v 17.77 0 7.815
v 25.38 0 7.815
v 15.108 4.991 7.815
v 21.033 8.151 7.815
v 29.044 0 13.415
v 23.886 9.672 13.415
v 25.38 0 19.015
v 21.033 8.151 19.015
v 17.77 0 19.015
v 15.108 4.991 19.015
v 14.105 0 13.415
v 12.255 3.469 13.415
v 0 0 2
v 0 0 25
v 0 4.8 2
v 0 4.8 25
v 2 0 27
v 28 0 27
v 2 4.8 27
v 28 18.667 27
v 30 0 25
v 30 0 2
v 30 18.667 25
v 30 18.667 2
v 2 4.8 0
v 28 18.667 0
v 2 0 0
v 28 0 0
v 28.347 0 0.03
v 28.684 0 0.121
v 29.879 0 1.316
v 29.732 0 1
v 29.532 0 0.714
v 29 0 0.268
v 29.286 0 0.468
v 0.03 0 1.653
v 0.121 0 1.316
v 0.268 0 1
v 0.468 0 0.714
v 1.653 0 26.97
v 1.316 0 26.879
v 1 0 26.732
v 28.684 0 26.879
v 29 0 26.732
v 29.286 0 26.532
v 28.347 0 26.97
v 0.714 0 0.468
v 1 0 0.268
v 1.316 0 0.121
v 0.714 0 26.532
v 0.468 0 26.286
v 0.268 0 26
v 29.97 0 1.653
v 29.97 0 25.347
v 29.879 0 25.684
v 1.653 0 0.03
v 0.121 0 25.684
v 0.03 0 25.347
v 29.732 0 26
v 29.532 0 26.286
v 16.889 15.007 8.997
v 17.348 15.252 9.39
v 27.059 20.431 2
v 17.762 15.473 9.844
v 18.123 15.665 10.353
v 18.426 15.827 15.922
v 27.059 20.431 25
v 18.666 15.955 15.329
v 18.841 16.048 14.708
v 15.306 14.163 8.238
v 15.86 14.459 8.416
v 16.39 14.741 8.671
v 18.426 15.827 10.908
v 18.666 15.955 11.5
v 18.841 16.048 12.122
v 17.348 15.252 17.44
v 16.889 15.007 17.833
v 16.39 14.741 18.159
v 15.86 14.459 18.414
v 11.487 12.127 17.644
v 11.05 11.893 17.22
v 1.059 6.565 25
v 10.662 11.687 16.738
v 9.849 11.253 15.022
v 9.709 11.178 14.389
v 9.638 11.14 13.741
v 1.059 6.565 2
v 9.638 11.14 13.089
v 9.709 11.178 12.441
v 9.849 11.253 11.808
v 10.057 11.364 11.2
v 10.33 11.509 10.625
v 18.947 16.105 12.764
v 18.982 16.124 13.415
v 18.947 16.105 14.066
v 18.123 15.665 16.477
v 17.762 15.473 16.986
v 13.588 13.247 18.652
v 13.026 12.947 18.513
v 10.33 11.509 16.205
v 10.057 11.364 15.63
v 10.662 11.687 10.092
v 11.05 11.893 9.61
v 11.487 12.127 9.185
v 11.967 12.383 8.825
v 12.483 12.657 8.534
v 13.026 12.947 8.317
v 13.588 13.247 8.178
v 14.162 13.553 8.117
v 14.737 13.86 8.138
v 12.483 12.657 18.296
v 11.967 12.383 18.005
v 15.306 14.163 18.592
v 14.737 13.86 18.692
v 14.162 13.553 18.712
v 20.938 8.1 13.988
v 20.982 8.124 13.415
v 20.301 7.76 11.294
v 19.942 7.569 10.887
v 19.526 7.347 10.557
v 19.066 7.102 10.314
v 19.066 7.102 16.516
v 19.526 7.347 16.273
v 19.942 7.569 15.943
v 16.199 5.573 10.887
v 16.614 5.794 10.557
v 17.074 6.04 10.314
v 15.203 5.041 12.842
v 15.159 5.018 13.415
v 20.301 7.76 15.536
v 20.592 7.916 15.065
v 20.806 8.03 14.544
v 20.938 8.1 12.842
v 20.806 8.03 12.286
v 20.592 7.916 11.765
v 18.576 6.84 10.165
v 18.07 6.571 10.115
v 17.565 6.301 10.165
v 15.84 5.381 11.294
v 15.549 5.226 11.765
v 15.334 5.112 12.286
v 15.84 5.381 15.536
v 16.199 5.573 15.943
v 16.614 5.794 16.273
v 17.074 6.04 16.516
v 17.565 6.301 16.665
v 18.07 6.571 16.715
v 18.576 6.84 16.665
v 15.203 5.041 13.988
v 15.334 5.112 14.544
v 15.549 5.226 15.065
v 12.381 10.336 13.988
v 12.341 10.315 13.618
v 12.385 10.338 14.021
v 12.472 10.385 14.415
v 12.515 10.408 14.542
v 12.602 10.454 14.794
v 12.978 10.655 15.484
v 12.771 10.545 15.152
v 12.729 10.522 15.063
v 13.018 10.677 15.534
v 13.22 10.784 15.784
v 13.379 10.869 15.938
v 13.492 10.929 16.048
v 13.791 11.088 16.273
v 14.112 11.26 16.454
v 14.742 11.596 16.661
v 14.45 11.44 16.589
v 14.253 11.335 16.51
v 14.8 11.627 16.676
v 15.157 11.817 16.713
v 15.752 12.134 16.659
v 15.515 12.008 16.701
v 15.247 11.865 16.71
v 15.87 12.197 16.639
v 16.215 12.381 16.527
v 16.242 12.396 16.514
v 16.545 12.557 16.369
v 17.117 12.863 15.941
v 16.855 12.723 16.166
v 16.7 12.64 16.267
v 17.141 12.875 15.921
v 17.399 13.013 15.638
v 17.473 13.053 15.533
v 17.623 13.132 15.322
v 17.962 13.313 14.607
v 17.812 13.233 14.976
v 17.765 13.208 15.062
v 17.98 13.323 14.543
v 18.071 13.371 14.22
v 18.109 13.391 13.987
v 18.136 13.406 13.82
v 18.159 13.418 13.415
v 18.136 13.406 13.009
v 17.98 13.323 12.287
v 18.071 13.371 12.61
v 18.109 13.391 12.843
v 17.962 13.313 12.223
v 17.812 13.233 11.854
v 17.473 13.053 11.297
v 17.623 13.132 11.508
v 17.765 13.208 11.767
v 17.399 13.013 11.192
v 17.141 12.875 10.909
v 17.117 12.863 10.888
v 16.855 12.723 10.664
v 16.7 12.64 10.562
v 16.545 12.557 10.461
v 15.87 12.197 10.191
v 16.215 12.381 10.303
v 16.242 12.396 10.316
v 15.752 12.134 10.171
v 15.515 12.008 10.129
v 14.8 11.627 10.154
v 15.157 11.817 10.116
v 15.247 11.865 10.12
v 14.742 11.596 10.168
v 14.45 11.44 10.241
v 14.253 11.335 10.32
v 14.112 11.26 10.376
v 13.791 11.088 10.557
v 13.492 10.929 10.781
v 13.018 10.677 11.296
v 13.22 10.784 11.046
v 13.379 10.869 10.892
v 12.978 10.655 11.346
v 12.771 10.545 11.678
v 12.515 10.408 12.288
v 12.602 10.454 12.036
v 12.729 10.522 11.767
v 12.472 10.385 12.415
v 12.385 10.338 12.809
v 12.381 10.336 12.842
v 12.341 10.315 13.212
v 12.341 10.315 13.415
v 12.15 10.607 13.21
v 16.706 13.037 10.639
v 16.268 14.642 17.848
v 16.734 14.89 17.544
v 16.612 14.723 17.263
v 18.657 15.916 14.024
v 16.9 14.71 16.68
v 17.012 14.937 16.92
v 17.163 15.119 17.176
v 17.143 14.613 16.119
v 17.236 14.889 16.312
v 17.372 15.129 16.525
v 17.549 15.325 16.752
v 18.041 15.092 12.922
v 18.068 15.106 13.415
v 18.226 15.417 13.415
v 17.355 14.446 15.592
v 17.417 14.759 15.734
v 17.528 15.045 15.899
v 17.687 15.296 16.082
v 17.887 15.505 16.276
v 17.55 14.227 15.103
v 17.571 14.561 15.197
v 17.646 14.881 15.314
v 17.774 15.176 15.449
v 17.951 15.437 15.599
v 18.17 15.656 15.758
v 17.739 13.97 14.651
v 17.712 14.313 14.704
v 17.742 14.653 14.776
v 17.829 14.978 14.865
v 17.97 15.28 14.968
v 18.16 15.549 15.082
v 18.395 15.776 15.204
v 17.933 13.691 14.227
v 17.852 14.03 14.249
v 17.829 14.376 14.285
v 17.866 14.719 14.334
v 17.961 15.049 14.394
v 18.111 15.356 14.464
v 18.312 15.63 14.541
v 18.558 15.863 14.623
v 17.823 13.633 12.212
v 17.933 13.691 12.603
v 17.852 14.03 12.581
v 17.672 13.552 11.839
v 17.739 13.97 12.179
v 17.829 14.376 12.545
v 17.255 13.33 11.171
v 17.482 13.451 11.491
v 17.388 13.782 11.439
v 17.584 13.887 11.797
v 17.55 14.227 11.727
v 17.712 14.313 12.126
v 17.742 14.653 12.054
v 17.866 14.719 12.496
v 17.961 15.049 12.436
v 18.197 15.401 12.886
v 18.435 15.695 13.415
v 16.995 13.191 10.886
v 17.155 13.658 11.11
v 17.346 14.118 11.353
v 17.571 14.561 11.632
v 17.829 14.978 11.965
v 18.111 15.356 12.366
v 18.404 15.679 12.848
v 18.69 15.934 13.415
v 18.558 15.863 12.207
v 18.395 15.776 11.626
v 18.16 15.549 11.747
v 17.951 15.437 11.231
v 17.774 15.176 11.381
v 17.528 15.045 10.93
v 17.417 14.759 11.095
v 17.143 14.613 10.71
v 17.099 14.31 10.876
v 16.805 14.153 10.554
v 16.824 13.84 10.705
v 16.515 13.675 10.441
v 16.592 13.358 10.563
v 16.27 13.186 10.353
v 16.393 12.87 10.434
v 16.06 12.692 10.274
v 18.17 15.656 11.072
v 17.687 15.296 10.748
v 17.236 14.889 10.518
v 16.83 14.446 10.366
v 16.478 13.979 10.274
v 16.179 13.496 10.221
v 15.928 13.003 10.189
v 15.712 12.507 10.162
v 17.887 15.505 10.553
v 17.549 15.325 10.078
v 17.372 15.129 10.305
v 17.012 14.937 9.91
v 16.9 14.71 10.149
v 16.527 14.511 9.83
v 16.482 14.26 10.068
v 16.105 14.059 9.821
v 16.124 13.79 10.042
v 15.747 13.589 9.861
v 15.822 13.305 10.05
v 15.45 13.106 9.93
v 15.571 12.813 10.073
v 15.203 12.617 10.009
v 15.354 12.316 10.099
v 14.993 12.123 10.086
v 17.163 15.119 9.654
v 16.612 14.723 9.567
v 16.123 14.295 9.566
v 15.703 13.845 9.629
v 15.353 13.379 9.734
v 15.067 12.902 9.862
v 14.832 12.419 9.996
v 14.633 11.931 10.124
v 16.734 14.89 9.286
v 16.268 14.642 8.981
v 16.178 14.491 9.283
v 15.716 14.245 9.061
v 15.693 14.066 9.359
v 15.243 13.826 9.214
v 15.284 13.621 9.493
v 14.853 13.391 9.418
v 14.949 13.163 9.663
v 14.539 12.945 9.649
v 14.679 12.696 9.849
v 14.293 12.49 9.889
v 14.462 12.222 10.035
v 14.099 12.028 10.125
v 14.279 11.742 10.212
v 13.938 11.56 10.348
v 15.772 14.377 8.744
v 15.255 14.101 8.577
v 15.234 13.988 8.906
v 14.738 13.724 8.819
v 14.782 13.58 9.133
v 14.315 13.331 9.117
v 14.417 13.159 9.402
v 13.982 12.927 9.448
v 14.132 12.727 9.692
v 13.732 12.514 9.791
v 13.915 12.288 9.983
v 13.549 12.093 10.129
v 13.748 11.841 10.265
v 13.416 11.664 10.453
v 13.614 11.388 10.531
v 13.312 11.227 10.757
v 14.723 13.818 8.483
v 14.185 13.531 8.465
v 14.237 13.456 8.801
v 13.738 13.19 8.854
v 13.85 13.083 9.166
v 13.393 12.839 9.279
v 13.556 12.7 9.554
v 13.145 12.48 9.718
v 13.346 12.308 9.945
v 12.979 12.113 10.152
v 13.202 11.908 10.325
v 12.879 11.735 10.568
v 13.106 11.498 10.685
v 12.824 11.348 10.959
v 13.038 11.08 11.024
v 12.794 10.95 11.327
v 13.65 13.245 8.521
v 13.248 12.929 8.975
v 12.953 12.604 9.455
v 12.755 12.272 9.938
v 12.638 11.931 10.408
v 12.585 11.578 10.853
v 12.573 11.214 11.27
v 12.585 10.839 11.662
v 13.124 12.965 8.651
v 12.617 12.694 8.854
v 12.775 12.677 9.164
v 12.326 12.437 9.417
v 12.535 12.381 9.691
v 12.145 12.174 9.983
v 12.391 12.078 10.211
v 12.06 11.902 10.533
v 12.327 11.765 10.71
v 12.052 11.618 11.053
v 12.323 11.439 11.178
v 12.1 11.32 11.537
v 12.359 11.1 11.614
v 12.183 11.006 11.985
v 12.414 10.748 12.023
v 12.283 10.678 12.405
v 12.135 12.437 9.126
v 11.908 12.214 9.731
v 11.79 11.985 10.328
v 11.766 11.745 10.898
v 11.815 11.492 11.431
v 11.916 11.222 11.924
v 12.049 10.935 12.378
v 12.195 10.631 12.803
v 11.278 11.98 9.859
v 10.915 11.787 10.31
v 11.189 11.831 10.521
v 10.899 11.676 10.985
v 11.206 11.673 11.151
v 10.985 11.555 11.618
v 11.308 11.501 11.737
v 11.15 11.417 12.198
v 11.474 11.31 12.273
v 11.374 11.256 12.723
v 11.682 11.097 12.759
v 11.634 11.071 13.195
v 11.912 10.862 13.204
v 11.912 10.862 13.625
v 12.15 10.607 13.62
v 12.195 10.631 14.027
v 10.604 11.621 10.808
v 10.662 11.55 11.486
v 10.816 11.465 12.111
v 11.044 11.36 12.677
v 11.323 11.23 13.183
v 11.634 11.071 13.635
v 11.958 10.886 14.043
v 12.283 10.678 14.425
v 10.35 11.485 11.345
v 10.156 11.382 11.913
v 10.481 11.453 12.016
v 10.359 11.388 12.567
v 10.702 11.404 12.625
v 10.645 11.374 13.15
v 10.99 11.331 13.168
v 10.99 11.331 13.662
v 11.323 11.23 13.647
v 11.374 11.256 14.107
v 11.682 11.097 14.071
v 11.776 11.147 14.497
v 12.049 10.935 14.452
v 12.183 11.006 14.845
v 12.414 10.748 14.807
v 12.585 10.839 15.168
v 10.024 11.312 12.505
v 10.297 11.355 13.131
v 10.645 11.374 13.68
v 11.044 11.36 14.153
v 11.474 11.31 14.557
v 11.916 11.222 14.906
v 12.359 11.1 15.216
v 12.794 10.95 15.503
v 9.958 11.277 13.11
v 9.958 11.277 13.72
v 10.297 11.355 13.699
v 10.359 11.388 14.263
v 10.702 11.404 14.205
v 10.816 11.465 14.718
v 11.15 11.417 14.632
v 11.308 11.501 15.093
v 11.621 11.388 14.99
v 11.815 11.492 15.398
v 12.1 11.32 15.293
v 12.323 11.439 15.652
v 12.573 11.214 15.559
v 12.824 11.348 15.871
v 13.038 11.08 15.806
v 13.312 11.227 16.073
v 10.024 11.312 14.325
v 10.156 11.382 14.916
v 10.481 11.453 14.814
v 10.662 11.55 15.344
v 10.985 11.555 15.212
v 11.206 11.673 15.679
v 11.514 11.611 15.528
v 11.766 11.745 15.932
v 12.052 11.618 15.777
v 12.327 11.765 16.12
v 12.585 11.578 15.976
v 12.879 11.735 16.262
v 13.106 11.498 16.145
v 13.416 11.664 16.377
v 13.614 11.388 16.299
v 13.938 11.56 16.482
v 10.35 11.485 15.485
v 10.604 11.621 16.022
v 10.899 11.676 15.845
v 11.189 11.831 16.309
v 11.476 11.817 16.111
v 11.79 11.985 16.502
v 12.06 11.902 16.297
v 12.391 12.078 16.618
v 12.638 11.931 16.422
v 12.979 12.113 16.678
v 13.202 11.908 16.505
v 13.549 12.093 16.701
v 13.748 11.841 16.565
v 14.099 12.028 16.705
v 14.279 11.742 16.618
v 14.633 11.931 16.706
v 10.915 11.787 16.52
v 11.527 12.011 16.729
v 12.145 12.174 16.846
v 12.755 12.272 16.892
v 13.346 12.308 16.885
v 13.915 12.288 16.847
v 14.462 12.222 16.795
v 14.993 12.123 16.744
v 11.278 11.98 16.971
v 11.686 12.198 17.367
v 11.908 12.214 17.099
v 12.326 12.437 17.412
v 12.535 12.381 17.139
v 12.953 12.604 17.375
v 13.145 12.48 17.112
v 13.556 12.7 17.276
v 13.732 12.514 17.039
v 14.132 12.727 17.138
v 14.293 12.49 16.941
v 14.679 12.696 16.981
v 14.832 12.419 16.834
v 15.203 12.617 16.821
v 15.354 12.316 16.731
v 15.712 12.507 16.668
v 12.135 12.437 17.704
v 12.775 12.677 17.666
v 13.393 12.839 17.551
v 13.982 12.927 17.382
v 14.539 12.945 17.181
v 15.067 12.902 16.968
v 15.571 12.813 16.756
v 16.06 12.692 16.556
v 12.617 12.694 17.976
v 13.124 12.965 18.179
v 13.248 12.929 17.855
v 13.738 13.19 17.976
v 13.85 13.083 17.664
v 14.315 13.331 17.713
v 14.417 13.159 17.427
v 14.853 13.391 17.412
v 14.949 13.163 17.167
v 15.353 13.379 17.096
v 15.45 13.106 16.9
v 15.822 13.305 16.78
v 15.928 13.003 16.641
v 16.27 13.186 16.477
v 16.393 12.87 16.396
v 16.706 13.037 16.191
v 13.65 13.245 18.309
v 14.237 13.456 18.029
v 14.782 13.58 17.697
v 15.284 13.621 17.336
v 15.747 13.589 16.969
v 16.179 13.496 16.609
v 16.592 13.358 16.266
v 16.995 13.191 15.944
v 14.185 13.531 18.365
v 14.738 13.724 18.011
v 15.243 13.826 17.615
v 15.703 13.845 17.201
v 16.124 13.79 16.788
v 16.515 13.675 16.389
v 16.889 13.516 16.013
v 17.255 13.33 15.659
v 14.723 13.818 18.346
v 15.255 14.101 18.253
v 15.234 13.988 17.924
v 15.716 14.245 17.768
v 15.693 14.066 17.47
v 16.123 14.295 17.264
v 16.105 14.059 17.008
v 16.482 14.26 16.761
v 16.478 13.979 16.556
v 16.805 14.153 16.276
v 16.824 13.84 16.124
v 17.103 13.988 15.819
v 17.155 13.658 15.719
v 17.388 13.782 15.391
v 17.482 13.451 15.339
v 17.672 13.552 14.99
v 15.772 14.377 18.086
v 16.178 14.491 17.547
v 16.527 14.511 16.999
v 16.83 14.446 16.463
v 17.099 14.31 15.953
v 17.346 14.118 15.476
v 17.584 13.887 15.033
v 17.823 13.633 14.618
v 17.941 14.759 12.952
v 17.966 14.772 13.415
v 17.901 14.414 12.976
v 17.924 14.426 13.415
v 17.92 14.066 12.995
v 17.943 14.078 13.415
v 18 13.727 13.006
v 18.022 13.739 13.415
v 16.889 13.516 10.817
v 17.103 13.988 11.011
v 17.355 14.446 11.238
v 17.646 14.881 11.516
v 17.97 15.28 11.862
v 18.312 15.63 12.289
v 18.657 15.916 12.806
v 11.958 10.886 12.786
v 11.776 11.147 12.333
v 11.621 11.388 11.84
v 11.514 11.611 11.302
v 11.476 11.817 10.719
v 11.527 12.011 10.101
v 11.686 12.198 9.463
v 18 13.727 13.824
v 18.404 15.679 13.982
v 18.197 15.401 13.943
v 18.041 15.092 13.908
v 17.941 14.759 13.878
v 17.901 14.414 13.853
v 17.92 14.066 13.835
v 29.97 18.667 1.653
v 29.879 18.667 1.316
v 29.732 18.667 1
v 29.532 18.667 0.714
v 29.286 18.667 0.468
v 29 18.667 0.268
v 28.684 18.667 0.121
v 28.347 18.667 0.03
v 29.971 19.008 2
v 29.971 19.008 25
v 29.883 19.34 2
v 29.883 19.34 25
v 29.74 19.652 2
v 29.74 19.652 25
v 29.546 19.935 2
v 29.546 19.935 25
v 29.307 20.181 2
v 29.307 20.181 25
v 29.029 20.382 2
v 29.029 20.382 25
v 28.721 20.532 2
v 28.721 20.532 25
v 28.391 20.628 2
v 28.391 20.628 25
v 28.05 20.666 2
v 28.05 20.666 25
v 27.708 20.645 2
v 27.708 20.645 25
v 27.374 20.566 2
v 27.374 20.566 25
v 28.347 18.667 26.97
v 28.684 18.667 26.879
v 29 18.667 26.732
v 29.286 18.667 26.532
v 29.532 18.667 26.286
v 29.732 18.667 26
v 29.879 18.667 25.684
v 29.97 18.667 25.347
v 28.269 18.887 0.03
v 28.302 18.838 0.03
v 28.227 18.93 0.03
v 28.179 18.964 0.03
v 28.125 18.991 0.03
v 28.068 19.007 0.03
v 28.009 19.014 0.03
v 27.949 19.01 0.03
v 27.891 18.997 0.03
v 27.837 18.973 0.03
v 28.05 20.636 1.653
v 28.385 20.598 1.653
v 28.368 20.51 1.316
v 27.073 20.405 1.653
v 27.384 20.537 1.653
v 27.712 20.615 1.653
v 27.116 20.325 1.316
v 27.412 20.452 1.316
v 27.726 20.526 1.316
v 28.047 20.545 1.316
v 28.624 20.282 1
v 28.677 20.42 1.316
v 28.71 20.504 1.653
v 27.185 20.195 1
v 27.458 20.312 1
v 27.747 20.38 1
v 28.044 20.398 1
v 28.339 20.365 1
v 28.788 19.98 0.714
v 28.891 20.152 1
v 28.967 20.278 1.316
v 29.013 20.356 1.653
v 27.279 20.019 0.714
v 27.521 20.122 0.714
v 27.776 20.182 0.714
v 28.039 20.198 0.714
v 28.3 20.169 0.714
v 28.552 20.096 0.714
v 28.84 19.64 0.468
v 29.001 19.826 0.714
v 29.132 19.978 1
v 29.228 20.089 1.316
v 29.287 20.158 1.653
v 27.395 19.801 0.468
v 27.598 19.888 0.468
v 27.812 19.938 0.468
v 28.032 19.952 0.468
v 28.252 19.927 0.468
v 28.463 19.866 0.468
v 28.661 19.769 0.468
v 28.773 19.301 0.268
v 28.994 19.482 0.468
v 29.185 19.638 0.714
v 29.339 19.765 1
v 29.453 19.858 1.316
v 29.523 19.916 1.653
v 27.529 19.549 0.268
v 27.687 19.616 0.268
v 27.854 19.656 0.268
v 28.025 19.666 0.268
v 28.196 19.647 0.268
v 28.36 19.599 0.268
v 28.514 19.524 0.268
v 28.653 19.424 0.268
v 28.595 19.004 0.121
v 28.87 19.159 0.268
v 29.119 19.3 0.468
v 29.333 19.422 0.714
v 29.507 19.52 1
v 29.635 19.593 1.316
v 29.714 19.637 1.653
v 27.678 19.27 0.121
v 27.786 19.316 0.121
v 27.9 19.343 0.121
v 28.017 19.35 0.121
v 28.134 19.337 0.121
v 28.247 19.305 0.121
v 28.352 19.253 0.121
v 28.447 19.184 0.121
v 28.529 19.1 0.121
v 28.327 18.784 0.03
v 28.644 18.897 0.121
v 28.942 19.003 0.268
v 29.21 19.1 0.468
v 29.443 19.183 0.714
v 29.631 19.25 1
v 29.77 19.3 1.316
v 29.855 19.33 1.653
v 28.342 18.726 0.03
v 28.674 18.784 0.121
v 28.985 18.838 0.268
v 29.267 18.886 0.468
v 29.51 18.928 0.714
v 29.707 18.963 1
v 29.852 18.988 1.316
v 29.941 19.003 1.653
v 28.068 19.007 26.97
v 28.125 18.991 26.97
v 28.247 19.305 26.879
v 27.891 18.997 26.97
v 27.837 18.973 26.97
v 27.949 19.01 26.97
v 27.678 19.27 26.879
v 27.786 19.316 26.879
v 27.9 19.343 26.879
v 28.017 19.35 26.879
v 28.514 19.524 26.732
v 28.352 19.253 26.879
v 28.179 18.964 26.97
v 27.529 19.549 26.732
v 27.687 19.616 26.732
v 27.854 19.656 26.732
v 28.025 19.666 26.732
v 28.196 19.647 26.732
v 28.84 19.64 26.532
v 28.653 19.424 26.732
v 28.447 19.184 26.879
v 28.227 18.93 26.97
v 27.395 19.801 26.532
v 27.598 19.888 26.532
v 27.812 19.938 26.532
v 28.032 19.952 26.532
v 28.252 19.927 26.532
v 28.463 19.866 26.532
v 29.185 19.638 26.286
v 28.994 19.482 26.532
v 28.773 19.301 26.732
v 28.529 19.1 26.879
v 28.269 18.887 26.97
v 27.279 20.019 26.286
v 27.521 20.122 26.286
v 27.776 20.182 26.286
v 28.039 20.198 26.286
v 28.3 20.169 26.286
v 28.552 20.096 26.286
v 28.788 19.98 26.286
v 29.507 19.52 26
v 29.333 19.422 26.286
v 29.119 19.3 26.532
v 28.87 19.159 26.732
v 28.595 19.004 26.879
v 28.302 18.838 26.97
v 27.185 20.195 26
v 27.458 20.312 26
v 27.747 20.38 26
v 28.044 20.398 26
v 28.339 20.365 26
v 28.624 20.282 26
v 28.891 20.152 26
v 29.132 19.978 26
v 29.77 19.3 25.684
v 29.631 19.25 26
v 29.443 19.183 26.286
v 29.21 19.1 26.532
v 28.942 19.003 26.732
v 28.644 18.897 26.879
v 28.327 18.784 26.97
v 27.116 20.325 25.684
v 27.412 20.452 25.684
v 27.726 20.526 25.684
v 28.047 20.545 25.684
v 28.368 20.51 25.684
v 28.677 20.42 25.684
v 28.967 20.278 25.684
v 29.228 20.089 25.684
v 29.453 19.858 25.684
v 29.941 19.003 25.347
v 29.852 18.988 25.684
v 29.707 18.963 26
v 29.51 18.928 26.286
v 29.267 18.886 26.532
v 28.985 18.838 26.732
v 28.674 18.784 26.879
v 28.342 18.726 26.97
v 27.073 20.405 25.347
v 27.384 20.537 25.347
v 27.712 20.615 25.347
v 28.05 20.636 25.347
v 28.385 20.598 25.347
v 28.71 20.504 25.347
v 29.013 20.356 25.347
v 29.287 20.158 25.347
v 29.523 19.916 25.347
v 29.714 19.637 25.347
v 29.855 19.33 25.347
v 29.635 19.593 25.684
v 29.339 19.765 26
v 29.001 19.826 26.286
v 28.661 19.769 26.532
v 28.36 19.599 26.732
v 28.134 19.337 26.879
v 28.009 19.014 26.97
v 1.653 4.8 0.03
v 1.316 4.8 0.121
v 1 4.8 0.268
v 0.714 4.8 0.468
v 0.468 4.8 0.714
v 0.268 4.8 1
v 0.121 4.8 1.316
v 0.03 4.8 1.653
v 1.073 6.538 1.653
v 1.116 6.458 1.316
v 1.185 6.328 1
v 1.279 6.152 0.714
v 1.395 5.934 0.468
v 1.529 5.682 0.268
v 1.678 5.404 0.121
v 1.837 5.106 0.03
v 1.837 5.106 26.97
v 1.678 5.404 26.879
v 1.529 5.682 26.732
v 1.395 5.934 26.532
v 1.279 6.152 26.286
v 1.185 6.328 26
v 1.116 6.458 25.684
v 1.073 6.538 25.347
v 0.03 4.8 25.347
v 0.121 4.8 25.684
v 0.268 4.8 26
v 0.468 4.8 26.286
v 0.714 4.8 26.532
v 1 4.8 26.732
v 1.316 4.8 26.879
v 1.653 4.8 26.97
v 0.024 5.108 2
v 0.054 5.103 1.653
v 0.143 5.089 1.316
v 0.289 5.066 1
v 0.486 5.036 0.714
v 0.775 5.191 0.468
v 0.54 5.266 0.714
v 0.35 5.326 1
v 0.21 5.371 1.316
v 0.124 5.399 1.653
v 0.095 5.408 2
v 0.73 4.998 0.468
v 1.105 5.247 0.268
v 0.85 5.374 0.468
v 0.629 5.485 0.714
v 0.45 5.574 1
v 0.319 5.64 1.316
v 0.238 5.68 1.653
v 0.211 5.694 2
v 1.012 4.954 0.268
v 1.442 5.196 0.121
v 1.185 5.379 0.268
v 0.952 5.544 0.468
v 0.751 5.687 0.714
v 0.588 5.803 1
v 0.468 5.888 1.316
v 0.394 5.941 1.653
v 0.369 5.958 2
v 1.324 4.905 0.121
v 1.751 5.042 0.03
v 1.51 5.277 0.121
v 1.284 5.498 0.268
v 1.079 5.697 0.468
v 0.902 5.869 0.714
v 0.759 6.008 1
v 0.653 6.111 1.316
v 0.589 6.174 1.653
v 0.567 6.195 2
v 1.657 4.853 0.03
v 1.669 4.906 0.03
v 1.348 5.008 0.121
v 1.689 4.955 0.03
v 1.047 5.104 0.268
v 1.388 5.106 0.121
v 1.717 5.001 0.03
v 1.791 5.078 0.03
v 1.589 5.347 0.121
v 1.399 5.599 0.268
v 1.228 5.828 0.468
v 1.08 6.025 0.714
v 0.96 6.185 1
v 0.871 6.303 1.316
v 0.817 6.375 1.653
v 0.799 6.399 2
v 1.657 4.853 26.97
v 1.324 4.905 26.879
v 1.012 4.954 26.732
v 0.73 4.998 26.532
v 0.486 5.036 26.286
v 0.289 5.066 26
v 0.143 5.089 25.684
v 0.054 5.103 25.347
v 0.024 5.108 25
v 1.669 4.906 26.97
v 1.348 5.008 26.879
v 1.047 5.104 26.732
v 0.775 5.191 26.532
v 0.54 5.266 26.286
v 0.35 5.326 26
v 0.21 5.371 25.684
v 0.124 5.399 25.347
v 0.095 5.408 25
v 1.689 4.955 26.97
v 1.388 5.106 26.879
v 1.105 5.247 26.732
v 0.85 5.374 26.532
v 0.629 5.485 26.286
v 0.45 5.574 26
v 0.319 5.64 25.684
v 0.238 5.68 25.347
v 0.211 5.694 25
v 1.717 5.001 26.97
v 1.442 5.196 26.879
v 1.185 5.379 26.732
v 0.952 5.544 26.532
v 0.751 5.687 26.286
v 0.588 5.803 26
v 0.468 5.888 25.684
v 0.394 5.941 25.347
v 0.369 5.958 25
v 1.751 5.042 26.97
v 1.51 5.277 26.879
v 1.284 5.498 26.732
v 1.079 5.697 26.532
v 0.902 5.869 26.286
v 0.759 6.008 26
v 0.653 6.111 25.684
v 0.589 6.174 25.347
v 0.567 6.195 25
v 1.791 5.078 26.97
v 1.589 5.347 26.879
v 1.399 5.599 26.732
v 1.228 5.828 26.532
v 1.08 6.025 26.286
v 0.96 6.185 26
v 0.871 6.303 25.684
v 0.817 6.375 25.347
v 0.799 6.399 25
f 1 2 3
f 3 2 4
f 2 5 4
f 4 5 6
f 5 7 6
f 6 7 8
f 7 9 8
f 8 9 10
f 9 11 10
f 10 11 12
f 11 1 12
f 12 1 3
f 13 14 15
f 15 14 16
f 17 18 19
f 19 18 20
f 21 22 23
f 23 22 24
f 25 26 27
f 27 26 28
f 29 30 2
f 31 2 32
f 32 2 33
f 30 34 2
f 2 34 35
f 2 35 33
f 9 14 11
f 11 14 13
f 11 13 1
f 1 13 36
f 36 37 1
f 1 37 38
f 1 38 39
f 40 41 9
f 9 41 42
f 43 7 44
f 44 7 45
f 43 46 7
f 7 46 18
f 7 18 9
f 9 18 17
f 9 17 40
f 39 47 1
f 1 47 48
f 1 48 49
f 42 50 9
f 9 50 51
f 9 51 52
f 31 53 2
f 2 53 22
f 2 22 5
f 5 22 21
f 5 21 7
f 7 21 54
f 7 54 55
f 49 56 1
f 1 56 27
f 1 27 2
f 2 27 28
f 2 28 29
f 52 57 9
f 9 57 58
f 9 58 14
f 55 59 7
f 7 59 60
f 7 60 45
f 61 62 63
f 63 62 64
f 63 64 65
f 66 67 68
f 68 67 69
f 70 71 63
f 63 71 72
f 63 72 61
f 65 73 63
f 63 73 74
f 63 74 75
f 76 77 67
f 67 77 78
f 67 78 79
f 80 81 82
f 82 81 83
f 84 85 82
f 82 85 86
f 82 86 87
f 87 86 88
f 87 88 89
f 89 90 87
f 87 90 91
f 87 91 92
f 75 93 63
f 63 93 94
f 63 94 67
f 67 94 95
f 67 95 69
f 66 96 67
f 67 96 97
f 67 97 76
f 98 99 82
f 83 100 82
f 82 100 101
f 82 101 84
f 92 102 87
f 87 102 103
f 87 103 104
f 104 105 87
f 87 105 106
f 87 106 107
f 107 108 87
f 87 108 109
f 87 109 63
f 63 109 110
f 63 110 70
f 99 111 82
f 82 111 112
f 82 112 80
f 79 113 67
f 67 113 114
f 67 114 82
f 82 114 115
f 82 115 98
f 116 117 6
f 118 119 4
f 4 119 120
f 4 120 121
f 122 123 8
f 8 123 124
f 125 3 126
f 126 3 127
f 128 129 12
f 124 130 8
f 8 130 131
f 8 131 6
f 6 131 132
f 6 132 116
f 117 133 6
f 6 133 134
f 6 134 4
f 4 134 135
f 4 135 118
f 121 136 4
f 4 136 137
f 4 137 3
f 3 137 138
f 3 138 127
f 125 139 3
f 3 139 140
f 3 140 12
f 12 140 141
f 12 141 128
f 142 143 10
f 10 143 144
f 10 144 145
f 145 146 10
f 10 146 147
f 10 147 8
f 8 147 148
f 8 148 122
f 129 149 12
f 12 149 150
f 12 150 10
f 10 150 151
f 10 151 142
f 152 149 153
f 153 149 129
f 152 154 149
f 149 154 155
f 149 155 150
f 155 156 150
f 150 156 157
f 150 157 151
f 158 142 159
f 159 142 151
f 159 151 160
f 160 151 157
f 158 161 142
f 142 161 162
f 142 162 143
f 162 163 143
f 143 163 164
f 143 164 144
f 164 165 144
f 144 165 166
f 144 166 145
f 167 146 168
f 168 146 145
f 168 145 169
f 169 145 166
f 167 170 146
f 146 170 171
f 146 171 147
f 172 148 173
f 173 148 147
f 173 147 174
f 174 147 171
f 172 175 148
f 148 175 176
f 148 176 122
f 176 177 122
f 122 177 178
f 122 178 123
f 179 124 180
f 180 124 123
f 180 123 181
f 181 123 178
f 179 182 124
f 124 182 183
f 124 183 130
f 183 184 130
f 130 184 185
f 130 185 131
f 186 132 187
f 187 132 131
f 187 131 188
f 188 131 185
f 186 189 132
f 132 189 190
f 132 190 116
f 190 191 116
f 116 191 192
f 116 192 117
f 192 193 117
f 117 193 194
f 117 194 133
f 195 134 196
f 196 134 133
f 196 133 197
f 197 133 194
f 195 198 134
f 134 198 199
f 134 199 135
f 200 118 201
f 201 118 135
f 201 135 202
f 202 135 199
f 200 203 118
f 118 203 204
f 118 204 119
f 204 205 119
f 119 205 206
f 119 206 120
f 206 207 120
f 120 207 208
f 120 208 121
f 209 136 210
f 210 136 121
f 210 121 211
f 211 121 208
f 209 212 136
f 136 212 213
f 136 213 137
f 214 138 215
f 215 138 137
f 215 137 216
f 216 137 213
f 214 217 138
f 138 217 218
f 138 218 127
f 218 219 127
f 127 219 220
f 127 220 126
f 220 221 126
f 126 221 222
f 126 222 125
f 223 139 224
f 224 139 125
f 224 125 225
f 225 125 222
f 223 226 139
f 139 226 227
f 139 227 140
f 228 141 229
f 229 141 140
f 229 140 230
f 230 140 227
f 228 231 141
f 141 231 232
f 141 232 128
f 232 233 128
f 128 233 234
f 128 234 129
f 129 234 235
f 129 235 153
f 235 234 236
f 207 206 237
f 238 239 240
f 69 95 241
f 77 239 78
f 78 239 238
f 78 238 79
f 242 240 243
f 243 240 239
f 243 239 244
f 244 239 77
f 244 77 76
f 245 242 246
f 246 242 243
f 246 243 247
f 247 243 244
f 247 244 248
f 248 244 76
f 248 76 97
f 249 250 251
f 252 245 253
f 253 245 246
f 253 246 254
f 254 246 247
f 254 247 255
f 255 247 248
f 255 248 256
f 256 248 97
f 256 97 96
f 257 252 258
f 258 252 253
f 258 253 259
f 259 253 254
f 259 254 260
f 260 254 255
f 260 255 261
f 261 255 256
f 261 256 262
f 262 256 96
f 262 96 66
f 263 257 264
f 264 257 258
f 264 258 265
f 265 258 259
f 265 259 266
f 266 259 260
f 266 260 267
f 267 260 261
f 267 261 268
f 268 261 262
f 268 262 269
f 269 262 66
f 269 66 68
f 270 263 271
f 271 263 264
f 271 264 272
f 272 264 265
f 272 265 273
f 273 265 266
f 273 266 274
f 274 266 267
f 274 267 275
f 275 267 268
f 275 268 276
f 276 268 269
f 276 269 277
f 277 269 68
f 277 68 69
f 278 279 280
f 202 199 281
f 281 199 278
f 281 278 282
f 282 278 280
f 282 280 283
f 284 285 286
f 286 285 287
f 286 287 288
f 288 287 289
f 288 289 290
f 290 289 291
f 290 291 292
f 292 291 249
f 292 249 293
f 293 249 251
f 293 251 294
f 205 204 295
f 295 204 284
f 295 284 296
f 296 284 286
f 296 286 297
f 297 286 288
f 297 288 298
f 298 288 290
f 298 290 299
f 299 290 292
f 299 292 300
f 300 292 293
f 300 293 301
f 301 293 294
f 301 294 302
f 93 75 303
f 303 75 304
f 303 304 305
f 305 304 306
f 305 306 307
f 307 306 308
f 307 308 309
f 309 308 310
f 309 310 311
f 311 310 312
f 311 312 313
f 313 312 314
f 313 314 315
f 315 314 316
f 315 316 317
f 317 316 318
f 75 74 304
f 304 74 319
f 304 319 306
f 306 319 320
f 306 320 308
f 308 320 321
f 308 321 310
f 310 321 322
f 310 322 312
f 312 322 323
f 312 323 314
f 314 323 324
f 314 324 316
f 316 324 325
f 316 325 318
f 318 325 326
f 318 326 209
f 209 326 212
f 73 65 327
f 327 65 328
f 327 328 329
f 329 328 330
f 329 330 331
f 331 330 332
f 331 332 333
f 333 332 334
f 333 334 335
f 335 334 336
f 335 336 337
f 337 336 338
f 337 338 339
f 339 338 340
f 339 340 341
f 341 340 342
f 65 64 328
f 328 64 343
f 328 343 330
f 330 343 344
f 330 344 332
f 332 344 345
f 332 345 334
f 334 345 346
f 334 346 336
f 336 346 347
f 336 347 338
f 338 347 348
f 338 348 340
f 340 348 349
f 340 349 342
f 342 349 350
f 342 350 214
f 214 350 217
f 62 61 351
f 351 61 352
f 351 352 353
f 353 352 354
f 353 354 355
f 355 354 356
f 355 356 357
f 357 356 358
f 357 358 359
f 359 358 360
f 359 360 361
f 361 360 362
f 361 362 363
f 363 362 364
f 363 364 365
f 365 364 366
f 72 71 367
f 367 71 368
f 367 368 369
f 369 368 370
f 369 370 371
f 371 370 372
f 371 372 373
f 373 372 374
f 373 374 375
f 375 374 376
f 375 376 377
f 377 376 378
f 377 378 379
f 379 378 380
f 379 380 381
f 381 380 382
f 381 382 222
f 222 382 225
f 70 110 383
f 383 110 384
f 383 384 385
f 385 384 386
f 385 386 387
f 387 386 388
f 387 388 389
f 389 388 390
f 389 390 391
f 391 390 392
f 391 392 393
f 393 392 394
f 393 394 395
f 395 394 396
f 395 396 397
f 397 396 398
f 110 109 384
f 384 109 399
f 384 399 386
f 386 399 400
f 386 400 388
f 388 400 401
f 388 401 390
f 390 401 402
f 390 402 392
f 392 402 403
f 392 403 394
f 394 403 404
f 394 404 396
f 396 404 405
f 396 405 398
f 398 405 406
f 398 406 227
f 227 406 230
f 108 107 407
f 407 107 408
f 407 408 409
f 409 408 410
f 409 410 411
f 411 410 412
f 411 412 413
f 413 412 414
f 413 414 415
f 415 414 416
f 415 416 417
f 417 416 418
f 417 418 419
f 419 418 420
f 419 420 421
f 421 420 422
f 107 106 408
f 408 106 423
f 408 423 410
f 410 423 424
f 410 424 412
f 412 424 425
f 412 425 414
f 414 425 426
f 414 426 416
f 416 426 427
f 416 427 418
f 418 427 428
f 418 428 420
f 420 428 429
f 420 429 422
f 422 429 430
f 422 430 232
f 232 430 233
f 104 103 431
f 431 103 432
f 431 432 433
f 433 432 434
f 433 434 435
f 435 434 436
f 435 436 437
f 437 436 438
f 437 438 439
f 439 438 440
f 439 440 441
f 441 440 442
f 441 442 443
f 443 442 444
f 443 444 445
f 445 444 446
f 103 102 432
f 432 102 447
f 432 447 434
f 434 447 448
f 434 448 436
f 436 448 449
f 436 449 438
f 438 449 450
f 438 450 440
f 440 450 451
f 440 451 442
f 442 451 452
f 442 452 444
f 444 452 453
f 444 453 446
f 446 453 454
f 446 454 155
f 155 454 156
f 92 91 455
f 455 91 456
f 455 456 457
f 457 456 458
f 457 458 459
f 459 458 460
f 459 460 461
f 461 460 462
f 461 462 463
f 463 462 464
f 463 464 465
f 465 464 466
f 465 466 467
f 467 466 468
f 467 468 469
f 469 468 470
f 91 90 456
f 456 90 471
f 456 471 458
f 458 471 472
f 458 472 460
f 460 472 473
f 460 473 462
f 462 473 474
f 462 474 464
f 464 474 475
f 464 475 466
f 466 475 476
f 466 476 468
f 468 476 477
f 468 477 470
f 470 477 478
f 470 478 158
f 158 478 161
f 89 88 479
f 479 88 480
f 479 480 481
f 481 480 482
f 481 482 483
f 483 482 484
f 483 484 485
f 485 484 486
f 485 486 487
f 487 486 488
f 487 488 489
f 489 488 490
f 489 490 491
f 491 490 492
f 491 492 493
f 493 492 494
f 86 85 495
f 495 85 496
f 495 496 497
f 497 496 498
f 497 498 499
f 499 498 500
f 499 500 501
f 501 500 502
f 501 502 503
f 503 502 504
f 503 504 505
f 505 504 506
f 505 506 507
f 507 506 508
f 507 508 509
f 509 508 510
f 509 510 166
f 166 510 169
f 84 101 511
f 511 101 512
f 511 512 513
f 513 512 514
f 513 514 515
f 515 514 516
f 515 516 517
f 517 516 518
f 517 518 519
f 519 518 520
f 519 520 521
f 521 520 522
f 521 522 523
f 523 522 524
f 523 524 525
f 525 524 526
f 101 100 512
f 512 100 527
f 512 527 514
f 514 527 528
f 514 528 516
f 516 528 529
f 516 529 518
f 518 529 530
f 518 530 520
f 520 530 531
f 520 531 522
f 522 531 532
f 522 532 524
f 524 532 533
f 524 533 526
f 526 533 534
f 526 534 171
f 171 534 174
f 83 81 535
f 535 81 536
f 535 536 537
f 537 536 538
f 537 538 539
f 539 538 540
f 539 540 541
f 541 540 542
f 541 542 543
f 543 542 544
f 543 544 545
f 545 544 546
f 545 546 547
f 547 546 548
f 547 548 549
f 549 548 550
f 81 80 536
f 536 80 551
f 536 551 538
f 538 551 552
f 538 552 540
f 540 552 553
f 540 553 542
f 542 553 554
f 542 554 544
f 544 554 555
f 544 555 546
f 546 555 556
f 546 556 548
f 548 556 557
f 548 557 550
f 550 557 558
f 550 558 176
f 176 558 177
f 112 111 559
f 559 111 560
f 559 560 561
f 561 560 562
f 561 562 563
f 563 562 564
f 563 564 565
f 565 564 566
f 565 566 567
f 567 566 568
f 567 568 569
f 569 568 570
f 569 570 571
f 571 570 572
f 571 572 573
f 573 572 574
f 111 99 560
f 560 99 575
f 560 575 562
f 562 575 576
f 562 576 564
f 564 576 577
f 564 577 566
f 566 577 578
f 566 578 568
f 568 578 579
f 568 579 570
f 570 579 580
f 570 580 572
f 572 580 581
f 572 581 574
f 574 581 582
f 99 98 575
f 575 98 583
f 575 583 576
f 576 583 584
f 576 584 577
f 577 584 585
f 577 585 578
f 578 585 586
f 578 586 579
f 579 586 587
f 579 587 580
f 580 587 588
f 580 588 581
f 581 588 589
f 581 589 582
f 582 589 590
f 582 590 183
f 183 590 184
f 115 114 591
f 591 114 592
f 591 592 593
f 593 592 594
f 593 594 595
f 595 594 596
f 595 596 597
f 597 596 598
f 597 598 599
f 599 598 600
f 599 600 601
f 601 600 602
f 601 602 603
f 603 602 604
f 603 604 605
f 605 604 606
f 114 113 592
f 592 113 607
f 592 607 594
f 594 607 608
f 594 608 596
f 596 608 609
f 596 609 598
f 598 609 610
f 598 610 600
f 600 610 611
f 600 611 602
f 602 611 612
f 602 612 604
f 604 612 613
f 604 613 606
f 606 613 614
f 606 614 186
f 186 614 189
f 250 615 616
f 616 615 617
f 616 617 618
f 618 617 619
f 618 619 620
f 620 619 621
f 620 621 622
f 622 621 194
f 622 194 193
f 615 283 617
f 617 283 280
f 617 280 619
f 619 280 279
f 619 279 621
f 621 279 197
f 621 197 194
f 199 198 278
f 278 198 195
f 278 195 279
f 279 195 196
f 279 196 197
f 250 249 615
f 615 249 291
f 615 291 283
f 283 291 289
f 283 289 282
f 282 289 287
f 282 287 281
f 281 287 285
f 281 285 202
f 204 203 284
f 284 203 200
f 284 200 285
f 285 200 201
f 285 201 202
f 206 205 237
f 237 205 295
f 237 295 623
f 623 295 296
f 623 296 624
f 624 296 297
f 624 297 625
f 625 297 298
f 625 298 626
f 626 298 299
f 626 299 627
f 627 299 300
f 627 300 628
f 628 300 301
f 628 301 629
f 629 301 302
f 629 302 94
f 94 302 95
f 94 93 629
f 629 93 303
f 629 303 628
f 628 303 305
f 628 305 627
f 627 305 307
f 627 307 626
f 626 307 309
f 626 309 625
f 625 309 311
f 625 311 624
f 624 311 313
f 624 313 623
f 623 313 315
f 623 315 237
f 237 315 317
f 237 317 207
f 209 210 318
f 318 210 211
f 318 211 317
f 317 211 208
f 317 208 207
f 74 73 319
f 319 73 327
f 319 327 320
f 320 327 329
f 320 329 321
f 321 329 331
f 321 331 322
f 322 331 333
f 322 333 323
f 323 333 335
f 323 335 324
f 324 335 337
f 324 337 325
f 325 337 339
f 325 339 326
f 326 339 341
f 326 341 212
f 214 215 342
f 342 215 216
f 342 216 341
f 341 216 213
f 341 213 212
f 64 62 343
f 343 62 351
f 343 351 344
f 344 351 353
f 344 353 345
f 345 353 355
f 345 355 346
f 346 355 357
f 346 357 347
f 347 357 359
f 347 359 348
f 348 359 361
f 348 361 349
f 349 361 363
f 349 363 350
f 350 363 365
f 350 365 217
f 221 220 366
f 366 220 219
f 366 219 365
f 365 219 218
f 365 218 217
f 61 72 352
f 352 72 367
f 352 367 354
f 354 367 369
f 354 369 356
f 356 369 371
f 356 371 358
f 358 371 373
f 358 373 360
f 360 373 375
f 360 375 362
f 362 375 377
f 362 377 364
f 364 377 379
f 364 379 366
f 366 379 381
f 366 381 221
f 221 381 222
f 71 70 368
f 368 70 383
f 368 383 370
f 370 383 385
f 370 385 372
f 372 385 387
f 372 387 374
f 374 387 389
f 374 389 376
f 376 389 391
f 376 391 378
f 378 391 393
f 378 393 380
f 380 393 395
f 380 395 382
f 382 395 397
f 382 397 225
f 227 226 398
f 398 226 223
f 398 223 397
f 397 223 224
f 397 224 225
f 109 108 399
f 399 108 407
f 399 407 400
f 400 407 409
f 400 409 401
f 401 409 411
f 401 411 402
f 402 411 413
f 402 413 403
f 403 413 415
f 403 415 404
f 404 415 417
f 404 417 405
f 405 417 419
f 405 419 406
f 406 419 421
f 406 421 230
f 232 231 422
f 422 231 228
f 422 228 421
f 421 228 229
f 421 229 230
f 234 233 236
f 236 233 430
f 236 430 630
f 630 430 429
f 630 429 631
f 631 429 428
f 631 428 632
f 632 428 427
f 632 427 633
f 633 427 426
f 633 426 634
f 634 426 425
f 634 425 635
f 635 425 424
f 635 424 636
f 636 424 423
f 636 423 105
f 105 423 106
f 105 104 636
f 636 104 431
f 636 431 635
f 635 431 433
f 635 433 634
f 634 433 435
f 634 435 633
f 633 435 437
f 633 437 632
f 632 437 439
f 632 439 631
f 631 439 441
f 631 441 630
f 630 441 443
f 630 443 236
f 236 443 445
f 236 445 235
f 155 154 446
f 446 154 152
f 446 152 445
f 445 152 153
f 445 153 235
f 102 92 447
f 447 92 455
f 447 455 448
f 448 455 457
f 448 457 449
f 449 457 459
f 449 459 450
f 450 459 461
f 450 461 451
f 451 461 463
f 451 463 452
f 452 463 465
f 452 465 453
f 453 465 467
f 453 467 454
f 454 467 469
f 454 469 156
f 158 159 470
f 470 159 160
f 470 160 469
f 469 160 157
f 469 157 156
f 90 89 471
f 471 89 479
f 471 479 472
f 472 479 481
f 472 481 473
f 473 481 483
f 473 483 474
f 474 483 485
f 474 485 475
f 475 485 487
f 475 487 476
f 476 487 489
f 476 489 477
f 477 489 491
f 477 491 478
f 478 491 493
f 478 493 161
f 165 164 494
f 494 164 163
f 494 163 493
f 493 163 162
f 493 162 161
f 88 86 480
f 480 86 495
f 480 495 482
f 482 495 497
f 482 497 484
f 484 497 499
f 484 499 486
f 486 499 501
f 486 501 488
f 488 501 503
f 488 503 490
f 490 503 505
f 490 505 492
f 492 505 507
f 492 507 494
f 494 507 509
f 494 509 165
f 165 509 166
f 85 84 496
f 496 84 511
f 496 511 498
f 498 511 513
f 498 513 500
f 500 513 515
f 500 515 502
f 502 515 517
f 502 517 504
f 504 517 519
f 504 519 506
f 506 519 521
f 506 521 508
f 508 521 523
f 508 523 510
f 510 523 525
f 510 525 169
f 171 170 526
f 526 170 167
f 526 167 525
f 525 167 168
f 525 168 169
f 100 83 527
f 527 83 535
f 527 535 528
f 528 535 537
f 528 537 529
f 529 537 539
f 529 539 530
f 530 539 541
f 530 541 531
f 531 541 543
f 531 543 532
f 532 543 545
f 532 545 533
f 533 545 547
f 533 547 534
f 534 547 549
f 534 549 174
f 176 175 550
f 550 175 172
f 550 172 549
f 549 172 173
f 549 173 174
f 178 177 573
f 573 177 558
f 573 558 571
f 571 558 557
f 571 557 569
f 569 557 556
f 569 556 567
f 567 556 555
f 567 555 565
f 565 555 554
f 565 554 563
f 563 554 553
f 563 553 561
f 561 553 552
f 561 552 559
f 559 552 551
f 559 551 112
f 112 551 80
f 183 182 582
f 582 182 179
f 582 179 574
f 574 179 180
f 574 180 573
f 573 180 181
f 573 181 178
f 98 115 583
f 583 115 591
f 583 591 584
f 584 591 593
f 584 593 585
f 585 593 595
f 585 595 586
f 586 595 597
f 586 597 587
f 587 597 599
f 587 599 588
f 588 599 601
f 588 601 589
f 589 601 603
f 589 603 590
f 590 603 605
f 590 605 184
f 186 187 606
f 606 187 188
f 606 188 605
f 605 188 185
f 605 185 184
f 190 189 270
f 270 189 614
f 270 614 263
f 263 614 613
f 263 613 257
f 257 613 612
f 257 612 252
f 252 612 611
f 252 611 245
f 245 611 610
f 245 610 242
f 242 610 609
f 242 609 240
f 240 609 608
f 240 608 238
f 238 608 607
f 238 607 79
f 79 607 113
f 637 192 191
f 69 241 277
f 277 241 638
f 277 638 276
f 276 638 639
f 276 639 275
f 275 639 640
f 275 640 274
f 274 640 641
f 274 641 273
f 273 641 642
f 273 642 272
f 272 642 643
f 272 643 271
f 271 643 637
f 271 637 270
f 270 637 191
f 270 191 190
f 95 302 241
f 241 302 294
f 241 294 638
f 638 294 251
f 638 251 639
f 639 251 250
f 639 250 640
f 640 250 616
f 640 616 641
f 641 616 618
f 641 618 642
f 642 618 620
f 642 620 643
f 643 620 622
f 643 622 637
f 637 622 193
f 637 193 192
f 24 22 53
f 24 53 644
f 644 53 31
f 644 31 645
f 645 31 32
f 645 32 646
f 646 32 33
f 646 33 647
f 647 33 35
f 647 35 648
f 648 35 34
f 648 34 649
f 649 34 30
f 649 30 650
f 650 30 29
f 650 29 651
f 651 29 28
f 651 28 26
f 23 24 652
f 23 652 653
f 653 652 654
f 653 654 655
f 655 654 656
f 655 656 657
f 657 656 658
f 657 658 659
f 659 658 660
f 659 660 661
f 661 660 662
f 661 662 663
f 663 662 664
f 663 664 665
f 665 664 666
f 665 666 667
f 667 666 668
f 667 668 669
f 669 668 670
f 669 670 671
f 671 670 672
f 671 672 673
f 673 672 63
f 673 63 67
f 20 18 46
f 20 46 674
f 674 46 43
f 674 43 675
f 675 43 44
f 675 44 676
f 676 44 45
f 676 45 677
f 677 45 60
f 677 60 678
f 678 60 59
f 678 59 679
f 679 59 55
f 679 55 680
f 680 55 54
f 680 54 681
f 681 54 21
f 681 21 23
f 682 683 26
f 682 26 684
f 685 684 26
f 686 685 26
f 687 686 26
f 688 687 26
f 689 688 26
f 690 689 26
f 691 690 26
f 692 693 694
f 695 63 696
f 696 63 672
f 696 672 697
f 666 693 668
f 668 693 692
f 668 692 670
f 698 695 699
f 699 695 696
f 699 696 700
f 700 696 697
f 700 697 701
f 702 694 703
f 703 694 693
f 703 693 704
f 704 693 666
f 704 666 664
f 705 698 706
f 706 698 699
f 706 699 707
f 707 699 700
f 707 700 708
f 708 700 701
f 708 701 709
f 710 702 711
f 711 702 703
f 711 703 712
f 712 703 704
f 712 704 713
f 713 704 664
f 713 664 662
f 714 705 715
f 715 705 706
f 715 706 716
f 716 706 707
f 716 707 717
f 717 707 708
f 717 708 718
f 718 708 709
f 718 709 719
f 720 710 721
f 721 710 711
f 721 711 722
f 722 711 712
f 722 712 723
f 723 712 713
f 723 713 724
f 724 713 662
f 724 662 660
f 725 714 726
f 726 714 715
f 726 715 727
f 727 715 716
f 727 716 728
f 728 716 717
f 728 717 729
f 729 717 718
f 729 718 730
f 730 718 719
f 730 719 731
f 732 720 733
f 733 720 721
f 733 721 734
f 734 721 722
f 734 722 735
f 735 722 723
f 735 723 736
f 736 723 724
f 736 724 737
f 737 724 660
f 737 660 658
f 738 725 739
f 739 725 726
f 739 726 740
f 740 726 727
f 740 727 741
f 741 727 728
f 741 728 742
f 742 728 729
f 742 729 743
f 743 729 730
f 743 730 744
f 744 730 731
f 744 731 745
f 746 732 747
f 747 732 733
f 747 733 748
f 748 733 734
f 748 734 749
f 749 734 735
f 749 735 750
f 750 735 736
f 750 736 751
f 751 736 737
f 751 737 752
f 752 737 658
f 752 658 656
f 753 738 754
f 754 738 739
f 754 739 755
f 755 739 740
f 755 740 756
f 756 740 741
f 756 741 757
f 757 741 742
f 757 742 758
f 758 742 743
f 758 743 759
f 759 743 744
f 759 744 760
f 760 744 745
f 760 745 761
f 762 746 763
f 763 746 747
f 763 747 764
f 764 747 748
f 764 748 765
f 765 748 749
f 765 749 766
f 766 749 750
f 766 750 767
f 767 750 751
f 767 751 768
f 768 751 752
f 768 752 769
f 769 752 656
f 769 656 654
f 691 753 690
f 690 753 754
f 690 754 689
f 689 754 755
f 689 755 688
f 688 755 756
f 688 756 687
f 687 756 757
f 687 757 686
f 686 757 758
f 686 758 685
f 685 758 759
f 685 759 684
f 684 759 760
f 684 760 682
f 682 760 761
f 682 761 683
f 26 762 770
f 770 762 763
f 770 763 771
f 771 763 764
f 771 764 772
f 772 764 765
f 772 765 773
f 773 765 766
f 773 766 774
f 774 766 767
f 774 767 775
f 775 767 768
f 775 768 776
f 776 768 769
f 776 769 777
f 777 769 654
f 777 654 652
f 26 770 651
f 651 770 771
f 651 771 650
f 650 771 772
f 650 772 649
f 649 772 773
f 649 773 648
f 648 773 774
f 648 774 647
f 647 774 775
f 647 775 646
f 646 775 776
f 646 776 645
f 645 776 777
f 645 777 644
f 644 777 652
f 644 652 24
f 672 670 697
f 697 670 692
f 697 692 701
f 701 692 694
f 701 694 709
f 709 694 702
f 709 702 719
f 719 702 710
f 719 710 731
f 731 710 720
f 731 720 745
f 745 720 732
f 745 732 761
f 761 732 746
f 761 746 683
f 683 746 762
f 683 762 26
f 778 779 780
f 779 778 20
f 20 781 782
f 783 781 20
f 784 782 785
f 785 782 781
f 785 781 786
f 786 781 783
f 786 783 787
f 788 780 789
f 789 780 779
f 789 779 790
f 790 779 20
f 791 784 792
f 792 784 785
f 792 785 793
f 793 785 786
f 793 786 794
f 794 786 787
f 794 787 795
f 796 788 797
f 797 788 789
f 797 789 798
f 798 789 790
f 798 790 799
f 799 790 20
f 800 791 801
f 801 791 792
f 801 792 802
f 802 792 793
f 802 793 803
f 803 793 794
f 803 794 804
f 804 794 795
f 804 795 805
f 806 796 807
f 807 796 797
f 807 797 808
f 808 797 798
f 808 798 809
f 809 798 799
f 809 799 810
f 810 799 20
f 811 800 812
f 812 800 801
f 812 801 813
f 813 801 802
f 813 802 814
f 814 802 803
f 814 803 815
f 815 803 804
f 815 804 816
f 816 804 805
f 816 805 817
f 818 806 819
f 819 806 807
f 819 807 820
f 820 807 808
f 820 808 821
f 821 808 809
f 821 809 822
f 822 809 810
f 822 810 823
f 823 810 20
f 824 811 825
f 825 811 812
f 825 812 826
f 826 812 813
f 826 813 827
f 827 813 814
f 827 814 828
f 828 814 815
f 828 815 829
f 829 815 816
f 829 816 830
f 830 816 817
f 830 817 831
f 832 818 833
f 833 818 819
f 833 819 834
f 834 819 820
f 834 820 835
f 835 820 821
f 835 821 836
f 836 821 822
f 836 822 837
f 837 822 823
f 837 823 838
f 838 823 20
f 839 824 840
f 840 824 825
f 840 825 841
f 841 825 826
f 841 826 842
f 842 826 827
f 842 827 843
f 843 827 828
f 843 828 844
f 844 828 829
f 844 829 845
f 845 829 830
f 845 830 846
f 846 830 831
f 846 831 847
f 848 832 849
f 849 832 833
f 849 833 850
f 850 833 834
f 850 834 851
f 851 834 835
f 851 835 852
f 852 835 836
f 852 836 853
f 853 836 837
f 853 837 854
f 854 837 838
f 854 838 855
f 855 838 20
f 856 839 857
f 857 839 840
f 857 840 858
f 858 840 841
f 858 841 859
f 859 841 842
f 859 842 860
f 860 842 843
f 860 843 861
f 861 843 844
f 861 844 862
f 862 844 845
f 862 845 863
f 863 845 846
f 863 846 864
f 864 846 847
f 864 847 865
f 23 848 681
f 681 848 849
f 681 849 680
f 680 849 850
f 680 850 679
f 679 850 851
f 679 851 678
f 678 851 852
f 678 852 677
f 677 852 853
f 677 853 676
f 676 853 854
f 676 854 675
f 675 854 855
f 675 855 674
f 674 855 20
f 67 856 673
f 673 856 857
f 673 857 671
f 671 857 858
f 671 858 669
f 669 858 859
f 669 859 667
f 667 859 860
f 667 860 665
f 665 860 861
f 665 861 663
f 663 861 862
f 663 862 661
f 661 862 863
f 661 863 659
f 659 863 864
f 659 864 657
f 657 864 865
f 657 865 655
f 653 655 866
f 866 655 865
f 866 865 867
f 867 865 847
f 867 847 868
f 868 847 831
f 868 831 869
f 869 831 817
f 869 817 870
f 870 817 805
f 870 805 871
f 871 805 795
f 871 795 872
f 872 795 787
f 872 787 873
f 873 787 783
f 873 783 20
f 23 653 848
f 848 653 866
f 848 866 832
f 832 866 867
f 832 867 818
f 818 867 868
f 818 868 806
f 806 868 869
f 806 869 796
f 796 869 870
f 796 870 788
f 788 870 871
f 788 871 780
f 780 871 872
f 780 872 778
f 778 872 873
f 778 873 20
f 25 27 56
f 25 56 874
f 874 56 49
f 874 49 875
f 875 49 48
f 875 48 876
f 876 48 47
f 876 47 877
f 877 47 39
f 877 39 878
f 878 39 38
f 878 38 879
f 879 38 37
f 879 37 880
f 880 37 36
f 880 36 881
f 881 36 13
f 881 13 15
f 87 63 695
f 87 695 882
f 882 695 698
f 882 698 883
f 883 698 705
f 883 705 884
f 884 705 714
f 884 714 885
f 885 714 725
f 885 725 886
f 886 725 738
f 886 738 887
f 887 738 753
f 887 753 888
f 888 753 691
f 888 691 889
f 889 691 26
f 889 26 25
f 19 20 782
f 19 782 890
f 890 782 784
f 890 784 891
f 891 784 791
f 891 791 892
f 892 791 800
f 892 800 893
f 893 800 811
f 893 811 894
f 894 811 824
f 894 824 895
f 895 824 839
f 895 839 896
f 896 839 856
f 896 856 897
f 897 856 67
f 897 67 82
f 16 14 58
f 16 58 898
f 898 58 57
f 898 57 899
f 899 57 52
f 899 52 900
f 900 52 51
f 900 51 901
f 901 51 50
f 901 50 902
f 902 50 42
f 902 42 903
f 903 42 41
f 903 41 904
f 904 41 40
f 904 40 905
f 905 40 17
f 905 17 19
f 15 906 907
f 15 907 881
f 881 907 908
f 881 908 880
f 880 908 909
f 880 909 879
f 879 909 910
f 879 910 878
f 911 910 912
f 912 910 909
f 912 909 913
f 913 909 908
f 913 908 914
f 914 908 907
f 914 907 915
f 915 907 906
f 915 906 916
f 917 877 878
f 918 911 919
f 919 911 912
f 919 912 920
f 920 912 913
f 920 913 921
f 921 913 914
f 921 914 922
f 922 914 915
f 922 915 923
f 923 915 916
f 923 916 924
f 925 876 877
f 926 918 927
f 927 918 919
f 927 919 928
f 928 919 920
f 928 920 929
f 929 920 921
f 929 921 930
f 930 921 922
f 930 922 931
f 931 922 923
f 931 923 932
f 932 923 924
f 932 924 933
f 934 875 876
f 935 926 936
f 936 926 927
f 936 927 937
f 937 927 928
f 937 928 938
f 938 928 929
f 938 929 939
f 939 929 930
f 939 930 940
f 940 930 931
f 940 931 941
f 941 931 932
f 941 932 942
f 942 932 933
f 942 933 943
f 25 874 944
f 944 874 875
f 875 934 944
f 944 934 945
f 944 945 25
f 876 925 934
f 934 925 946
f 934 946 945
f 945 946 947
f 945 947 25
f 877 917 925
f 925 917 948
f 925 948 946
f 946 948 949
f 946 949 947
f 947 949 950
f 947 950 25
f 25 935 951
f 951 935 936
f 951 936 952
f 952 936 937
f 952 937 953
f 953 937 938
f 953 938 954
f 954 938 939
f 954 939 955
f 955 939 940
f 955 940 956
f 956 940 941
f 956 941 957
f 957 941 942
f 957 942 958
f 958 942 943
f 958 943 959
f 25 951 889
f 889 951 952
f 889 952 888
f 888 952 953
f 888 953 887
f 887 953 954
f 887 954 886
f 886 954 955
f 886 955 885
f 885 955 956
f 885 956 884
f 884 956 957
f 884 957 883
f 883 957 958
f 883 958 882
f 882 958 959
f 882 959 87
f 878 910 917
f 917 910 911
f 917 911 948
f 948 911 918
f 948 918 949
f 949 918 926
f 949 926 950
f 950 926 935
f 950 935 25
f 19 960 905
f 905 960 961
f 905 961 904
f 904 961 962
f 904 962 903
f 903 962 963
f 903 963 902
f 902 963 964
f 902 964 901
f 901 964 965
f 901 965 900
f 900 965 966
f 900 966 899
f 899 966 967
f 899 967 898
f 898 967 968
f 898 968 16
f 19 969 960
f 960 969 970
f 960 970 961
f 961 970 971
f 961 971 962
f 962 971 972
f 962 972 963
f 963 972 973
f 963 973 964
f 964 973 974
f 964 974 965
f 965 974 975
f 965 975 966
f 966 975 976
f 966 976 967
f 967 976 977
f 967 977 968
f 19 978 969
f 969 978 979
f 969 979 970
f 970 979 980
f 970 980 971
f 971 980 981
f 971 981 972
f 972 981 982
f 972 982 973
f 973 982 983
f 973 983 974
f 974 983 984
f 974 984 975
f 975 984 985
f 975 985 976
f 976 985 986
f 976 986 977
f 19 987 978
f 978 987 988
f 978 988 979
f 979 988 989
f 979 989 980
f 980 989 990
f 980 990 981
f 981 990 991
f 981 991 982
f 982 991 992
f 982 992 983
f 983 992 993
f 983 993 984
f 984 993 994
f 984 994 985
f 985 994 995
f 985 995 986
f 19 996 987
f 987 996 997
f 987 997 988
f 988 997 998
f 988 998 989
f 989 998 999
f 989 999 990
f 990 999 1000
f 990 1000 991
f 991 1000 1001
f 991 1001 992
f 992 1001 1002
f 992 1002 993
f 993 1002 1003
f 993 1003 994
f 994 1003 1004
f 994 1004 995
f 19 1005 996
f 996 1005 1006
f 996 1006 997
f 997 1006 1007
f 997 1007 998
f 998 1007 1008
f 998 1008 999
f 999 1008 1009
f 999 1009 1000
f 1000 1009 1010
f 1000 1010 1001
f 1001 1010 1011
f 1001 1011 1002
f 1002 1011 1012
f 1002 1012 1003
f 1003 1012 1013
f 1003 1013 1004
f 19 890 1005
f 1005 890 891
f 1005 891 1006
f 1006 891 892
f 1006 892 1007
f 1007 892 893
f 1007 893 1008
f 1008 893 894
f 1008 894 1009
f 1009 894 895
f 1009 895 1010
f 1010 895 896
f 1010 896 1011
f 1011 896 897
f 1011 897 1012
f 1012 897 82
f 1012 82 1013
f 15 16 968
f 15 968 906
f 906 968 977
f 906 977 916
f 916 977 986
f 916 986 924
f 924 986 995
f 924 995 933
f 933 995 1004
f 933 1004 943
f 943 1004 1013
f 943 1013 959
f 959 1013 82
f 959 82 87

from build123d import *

# Parameters (mm, degrees)
SKETCH1_W           = 30
SKETCH1_H           = 27
BOSS_EXTRUDE1_DEPTH = 22
CUT_EXTRUDE1_DEPTH  = 46.967379738
CUT_EXTRUDE2_DEPTH  = 46.66149711
SKETCH4_R           = 6.960577045
SKETCH4_R_2         = 3.3
BOSS_EXTRUDE2_DEPTH = 8
FILLET2_R           = 2


with BuildPart() as part:
    # Sketch1 → Boss-Extrude1 (new body)
    with BuildSketch(Plane(origin=(0, 0, 0), x_dir=(1, 0, 0), z_dir=(0, 1, 0))):
        with Locations((15, -13.5)):
            Rectangle(SKETCH1_W, SKETCH1_H)
    extrude(amount=BOSS_EXTRUDE1_DEPTH)

    # Sketch2 → Cut-Extrude1 (cut, through all)
    with BuildSketch(Plane.XY.offset(27)):
        Polygon((0, 6), (0, 22), (30, 22), align=None)
    extrude(amount=-CUT_EXTRUDE1_DEPTH, mode=Mode.SUBTRACT)

    # Sketch3 → Cut-Extrude2 (cut, through all)
    with BuildSketch(Plane(origin=(-2.491349481, 4.671280277, 0), x_dir=(0.8823529411764706, 0.47058823529411764, 0), z_dir=(-0.47058823529411764, 0.8823529411764706, 0))):
        Polygon((22.394089302, -19.014916182), (25.627250808, -13.414916183), (22.394089302, -7.814916185), (19.036531329, -7.814916185), (15.678973356, -7.814916185), (12.445811849, -13.414916183), (15.678973356, -19.014916182), (19.036531329, -19.014916182), align=None)
    extrude(amount=-CUT_EXTRUDE2_DEPTH, mode=Mode.SUBTRACT)

    # Sketch4 → Boss-Extrude2 (add)
    with BuildSketch(Plane(origin=(-2.491349481, 4.671280277, 0), x_dir=(0.8823529411764706, 0.47058823529411764, 0), z_dir=(-0.47058823529411764, 0.8823529411764706, 0))):
        with Locations((19.036531329, -13.414916183)):
            Circle(SKETCH4_R)
        with Locations(Location((19.036531329, -13.414916183, 0), (0, 0, 180))):
            Circle(SKETCH4_R_2, mode=Mode.SUBTRACT)
    extrude(amount=-BOSS_EXTRUDE2_DEPTH)

    # Fillet2
    fillet2_edges = [part.edges().sort_by_distance(p)[0] for p in [
        (30, 22, 13.5),
        (0, 3, 0),
        (0, 3, 27),
        (15, 14, 0),
        (0, 6, 13.5),
        (15, 14, 27),
        (17.217354633, 15.182589137, 13.414916183),
        (30, 11, 0),
        (30, 11, 27),
    ]]
    fillet(fillet2_edges, radius=FILLET2_R)


solid = part.part
